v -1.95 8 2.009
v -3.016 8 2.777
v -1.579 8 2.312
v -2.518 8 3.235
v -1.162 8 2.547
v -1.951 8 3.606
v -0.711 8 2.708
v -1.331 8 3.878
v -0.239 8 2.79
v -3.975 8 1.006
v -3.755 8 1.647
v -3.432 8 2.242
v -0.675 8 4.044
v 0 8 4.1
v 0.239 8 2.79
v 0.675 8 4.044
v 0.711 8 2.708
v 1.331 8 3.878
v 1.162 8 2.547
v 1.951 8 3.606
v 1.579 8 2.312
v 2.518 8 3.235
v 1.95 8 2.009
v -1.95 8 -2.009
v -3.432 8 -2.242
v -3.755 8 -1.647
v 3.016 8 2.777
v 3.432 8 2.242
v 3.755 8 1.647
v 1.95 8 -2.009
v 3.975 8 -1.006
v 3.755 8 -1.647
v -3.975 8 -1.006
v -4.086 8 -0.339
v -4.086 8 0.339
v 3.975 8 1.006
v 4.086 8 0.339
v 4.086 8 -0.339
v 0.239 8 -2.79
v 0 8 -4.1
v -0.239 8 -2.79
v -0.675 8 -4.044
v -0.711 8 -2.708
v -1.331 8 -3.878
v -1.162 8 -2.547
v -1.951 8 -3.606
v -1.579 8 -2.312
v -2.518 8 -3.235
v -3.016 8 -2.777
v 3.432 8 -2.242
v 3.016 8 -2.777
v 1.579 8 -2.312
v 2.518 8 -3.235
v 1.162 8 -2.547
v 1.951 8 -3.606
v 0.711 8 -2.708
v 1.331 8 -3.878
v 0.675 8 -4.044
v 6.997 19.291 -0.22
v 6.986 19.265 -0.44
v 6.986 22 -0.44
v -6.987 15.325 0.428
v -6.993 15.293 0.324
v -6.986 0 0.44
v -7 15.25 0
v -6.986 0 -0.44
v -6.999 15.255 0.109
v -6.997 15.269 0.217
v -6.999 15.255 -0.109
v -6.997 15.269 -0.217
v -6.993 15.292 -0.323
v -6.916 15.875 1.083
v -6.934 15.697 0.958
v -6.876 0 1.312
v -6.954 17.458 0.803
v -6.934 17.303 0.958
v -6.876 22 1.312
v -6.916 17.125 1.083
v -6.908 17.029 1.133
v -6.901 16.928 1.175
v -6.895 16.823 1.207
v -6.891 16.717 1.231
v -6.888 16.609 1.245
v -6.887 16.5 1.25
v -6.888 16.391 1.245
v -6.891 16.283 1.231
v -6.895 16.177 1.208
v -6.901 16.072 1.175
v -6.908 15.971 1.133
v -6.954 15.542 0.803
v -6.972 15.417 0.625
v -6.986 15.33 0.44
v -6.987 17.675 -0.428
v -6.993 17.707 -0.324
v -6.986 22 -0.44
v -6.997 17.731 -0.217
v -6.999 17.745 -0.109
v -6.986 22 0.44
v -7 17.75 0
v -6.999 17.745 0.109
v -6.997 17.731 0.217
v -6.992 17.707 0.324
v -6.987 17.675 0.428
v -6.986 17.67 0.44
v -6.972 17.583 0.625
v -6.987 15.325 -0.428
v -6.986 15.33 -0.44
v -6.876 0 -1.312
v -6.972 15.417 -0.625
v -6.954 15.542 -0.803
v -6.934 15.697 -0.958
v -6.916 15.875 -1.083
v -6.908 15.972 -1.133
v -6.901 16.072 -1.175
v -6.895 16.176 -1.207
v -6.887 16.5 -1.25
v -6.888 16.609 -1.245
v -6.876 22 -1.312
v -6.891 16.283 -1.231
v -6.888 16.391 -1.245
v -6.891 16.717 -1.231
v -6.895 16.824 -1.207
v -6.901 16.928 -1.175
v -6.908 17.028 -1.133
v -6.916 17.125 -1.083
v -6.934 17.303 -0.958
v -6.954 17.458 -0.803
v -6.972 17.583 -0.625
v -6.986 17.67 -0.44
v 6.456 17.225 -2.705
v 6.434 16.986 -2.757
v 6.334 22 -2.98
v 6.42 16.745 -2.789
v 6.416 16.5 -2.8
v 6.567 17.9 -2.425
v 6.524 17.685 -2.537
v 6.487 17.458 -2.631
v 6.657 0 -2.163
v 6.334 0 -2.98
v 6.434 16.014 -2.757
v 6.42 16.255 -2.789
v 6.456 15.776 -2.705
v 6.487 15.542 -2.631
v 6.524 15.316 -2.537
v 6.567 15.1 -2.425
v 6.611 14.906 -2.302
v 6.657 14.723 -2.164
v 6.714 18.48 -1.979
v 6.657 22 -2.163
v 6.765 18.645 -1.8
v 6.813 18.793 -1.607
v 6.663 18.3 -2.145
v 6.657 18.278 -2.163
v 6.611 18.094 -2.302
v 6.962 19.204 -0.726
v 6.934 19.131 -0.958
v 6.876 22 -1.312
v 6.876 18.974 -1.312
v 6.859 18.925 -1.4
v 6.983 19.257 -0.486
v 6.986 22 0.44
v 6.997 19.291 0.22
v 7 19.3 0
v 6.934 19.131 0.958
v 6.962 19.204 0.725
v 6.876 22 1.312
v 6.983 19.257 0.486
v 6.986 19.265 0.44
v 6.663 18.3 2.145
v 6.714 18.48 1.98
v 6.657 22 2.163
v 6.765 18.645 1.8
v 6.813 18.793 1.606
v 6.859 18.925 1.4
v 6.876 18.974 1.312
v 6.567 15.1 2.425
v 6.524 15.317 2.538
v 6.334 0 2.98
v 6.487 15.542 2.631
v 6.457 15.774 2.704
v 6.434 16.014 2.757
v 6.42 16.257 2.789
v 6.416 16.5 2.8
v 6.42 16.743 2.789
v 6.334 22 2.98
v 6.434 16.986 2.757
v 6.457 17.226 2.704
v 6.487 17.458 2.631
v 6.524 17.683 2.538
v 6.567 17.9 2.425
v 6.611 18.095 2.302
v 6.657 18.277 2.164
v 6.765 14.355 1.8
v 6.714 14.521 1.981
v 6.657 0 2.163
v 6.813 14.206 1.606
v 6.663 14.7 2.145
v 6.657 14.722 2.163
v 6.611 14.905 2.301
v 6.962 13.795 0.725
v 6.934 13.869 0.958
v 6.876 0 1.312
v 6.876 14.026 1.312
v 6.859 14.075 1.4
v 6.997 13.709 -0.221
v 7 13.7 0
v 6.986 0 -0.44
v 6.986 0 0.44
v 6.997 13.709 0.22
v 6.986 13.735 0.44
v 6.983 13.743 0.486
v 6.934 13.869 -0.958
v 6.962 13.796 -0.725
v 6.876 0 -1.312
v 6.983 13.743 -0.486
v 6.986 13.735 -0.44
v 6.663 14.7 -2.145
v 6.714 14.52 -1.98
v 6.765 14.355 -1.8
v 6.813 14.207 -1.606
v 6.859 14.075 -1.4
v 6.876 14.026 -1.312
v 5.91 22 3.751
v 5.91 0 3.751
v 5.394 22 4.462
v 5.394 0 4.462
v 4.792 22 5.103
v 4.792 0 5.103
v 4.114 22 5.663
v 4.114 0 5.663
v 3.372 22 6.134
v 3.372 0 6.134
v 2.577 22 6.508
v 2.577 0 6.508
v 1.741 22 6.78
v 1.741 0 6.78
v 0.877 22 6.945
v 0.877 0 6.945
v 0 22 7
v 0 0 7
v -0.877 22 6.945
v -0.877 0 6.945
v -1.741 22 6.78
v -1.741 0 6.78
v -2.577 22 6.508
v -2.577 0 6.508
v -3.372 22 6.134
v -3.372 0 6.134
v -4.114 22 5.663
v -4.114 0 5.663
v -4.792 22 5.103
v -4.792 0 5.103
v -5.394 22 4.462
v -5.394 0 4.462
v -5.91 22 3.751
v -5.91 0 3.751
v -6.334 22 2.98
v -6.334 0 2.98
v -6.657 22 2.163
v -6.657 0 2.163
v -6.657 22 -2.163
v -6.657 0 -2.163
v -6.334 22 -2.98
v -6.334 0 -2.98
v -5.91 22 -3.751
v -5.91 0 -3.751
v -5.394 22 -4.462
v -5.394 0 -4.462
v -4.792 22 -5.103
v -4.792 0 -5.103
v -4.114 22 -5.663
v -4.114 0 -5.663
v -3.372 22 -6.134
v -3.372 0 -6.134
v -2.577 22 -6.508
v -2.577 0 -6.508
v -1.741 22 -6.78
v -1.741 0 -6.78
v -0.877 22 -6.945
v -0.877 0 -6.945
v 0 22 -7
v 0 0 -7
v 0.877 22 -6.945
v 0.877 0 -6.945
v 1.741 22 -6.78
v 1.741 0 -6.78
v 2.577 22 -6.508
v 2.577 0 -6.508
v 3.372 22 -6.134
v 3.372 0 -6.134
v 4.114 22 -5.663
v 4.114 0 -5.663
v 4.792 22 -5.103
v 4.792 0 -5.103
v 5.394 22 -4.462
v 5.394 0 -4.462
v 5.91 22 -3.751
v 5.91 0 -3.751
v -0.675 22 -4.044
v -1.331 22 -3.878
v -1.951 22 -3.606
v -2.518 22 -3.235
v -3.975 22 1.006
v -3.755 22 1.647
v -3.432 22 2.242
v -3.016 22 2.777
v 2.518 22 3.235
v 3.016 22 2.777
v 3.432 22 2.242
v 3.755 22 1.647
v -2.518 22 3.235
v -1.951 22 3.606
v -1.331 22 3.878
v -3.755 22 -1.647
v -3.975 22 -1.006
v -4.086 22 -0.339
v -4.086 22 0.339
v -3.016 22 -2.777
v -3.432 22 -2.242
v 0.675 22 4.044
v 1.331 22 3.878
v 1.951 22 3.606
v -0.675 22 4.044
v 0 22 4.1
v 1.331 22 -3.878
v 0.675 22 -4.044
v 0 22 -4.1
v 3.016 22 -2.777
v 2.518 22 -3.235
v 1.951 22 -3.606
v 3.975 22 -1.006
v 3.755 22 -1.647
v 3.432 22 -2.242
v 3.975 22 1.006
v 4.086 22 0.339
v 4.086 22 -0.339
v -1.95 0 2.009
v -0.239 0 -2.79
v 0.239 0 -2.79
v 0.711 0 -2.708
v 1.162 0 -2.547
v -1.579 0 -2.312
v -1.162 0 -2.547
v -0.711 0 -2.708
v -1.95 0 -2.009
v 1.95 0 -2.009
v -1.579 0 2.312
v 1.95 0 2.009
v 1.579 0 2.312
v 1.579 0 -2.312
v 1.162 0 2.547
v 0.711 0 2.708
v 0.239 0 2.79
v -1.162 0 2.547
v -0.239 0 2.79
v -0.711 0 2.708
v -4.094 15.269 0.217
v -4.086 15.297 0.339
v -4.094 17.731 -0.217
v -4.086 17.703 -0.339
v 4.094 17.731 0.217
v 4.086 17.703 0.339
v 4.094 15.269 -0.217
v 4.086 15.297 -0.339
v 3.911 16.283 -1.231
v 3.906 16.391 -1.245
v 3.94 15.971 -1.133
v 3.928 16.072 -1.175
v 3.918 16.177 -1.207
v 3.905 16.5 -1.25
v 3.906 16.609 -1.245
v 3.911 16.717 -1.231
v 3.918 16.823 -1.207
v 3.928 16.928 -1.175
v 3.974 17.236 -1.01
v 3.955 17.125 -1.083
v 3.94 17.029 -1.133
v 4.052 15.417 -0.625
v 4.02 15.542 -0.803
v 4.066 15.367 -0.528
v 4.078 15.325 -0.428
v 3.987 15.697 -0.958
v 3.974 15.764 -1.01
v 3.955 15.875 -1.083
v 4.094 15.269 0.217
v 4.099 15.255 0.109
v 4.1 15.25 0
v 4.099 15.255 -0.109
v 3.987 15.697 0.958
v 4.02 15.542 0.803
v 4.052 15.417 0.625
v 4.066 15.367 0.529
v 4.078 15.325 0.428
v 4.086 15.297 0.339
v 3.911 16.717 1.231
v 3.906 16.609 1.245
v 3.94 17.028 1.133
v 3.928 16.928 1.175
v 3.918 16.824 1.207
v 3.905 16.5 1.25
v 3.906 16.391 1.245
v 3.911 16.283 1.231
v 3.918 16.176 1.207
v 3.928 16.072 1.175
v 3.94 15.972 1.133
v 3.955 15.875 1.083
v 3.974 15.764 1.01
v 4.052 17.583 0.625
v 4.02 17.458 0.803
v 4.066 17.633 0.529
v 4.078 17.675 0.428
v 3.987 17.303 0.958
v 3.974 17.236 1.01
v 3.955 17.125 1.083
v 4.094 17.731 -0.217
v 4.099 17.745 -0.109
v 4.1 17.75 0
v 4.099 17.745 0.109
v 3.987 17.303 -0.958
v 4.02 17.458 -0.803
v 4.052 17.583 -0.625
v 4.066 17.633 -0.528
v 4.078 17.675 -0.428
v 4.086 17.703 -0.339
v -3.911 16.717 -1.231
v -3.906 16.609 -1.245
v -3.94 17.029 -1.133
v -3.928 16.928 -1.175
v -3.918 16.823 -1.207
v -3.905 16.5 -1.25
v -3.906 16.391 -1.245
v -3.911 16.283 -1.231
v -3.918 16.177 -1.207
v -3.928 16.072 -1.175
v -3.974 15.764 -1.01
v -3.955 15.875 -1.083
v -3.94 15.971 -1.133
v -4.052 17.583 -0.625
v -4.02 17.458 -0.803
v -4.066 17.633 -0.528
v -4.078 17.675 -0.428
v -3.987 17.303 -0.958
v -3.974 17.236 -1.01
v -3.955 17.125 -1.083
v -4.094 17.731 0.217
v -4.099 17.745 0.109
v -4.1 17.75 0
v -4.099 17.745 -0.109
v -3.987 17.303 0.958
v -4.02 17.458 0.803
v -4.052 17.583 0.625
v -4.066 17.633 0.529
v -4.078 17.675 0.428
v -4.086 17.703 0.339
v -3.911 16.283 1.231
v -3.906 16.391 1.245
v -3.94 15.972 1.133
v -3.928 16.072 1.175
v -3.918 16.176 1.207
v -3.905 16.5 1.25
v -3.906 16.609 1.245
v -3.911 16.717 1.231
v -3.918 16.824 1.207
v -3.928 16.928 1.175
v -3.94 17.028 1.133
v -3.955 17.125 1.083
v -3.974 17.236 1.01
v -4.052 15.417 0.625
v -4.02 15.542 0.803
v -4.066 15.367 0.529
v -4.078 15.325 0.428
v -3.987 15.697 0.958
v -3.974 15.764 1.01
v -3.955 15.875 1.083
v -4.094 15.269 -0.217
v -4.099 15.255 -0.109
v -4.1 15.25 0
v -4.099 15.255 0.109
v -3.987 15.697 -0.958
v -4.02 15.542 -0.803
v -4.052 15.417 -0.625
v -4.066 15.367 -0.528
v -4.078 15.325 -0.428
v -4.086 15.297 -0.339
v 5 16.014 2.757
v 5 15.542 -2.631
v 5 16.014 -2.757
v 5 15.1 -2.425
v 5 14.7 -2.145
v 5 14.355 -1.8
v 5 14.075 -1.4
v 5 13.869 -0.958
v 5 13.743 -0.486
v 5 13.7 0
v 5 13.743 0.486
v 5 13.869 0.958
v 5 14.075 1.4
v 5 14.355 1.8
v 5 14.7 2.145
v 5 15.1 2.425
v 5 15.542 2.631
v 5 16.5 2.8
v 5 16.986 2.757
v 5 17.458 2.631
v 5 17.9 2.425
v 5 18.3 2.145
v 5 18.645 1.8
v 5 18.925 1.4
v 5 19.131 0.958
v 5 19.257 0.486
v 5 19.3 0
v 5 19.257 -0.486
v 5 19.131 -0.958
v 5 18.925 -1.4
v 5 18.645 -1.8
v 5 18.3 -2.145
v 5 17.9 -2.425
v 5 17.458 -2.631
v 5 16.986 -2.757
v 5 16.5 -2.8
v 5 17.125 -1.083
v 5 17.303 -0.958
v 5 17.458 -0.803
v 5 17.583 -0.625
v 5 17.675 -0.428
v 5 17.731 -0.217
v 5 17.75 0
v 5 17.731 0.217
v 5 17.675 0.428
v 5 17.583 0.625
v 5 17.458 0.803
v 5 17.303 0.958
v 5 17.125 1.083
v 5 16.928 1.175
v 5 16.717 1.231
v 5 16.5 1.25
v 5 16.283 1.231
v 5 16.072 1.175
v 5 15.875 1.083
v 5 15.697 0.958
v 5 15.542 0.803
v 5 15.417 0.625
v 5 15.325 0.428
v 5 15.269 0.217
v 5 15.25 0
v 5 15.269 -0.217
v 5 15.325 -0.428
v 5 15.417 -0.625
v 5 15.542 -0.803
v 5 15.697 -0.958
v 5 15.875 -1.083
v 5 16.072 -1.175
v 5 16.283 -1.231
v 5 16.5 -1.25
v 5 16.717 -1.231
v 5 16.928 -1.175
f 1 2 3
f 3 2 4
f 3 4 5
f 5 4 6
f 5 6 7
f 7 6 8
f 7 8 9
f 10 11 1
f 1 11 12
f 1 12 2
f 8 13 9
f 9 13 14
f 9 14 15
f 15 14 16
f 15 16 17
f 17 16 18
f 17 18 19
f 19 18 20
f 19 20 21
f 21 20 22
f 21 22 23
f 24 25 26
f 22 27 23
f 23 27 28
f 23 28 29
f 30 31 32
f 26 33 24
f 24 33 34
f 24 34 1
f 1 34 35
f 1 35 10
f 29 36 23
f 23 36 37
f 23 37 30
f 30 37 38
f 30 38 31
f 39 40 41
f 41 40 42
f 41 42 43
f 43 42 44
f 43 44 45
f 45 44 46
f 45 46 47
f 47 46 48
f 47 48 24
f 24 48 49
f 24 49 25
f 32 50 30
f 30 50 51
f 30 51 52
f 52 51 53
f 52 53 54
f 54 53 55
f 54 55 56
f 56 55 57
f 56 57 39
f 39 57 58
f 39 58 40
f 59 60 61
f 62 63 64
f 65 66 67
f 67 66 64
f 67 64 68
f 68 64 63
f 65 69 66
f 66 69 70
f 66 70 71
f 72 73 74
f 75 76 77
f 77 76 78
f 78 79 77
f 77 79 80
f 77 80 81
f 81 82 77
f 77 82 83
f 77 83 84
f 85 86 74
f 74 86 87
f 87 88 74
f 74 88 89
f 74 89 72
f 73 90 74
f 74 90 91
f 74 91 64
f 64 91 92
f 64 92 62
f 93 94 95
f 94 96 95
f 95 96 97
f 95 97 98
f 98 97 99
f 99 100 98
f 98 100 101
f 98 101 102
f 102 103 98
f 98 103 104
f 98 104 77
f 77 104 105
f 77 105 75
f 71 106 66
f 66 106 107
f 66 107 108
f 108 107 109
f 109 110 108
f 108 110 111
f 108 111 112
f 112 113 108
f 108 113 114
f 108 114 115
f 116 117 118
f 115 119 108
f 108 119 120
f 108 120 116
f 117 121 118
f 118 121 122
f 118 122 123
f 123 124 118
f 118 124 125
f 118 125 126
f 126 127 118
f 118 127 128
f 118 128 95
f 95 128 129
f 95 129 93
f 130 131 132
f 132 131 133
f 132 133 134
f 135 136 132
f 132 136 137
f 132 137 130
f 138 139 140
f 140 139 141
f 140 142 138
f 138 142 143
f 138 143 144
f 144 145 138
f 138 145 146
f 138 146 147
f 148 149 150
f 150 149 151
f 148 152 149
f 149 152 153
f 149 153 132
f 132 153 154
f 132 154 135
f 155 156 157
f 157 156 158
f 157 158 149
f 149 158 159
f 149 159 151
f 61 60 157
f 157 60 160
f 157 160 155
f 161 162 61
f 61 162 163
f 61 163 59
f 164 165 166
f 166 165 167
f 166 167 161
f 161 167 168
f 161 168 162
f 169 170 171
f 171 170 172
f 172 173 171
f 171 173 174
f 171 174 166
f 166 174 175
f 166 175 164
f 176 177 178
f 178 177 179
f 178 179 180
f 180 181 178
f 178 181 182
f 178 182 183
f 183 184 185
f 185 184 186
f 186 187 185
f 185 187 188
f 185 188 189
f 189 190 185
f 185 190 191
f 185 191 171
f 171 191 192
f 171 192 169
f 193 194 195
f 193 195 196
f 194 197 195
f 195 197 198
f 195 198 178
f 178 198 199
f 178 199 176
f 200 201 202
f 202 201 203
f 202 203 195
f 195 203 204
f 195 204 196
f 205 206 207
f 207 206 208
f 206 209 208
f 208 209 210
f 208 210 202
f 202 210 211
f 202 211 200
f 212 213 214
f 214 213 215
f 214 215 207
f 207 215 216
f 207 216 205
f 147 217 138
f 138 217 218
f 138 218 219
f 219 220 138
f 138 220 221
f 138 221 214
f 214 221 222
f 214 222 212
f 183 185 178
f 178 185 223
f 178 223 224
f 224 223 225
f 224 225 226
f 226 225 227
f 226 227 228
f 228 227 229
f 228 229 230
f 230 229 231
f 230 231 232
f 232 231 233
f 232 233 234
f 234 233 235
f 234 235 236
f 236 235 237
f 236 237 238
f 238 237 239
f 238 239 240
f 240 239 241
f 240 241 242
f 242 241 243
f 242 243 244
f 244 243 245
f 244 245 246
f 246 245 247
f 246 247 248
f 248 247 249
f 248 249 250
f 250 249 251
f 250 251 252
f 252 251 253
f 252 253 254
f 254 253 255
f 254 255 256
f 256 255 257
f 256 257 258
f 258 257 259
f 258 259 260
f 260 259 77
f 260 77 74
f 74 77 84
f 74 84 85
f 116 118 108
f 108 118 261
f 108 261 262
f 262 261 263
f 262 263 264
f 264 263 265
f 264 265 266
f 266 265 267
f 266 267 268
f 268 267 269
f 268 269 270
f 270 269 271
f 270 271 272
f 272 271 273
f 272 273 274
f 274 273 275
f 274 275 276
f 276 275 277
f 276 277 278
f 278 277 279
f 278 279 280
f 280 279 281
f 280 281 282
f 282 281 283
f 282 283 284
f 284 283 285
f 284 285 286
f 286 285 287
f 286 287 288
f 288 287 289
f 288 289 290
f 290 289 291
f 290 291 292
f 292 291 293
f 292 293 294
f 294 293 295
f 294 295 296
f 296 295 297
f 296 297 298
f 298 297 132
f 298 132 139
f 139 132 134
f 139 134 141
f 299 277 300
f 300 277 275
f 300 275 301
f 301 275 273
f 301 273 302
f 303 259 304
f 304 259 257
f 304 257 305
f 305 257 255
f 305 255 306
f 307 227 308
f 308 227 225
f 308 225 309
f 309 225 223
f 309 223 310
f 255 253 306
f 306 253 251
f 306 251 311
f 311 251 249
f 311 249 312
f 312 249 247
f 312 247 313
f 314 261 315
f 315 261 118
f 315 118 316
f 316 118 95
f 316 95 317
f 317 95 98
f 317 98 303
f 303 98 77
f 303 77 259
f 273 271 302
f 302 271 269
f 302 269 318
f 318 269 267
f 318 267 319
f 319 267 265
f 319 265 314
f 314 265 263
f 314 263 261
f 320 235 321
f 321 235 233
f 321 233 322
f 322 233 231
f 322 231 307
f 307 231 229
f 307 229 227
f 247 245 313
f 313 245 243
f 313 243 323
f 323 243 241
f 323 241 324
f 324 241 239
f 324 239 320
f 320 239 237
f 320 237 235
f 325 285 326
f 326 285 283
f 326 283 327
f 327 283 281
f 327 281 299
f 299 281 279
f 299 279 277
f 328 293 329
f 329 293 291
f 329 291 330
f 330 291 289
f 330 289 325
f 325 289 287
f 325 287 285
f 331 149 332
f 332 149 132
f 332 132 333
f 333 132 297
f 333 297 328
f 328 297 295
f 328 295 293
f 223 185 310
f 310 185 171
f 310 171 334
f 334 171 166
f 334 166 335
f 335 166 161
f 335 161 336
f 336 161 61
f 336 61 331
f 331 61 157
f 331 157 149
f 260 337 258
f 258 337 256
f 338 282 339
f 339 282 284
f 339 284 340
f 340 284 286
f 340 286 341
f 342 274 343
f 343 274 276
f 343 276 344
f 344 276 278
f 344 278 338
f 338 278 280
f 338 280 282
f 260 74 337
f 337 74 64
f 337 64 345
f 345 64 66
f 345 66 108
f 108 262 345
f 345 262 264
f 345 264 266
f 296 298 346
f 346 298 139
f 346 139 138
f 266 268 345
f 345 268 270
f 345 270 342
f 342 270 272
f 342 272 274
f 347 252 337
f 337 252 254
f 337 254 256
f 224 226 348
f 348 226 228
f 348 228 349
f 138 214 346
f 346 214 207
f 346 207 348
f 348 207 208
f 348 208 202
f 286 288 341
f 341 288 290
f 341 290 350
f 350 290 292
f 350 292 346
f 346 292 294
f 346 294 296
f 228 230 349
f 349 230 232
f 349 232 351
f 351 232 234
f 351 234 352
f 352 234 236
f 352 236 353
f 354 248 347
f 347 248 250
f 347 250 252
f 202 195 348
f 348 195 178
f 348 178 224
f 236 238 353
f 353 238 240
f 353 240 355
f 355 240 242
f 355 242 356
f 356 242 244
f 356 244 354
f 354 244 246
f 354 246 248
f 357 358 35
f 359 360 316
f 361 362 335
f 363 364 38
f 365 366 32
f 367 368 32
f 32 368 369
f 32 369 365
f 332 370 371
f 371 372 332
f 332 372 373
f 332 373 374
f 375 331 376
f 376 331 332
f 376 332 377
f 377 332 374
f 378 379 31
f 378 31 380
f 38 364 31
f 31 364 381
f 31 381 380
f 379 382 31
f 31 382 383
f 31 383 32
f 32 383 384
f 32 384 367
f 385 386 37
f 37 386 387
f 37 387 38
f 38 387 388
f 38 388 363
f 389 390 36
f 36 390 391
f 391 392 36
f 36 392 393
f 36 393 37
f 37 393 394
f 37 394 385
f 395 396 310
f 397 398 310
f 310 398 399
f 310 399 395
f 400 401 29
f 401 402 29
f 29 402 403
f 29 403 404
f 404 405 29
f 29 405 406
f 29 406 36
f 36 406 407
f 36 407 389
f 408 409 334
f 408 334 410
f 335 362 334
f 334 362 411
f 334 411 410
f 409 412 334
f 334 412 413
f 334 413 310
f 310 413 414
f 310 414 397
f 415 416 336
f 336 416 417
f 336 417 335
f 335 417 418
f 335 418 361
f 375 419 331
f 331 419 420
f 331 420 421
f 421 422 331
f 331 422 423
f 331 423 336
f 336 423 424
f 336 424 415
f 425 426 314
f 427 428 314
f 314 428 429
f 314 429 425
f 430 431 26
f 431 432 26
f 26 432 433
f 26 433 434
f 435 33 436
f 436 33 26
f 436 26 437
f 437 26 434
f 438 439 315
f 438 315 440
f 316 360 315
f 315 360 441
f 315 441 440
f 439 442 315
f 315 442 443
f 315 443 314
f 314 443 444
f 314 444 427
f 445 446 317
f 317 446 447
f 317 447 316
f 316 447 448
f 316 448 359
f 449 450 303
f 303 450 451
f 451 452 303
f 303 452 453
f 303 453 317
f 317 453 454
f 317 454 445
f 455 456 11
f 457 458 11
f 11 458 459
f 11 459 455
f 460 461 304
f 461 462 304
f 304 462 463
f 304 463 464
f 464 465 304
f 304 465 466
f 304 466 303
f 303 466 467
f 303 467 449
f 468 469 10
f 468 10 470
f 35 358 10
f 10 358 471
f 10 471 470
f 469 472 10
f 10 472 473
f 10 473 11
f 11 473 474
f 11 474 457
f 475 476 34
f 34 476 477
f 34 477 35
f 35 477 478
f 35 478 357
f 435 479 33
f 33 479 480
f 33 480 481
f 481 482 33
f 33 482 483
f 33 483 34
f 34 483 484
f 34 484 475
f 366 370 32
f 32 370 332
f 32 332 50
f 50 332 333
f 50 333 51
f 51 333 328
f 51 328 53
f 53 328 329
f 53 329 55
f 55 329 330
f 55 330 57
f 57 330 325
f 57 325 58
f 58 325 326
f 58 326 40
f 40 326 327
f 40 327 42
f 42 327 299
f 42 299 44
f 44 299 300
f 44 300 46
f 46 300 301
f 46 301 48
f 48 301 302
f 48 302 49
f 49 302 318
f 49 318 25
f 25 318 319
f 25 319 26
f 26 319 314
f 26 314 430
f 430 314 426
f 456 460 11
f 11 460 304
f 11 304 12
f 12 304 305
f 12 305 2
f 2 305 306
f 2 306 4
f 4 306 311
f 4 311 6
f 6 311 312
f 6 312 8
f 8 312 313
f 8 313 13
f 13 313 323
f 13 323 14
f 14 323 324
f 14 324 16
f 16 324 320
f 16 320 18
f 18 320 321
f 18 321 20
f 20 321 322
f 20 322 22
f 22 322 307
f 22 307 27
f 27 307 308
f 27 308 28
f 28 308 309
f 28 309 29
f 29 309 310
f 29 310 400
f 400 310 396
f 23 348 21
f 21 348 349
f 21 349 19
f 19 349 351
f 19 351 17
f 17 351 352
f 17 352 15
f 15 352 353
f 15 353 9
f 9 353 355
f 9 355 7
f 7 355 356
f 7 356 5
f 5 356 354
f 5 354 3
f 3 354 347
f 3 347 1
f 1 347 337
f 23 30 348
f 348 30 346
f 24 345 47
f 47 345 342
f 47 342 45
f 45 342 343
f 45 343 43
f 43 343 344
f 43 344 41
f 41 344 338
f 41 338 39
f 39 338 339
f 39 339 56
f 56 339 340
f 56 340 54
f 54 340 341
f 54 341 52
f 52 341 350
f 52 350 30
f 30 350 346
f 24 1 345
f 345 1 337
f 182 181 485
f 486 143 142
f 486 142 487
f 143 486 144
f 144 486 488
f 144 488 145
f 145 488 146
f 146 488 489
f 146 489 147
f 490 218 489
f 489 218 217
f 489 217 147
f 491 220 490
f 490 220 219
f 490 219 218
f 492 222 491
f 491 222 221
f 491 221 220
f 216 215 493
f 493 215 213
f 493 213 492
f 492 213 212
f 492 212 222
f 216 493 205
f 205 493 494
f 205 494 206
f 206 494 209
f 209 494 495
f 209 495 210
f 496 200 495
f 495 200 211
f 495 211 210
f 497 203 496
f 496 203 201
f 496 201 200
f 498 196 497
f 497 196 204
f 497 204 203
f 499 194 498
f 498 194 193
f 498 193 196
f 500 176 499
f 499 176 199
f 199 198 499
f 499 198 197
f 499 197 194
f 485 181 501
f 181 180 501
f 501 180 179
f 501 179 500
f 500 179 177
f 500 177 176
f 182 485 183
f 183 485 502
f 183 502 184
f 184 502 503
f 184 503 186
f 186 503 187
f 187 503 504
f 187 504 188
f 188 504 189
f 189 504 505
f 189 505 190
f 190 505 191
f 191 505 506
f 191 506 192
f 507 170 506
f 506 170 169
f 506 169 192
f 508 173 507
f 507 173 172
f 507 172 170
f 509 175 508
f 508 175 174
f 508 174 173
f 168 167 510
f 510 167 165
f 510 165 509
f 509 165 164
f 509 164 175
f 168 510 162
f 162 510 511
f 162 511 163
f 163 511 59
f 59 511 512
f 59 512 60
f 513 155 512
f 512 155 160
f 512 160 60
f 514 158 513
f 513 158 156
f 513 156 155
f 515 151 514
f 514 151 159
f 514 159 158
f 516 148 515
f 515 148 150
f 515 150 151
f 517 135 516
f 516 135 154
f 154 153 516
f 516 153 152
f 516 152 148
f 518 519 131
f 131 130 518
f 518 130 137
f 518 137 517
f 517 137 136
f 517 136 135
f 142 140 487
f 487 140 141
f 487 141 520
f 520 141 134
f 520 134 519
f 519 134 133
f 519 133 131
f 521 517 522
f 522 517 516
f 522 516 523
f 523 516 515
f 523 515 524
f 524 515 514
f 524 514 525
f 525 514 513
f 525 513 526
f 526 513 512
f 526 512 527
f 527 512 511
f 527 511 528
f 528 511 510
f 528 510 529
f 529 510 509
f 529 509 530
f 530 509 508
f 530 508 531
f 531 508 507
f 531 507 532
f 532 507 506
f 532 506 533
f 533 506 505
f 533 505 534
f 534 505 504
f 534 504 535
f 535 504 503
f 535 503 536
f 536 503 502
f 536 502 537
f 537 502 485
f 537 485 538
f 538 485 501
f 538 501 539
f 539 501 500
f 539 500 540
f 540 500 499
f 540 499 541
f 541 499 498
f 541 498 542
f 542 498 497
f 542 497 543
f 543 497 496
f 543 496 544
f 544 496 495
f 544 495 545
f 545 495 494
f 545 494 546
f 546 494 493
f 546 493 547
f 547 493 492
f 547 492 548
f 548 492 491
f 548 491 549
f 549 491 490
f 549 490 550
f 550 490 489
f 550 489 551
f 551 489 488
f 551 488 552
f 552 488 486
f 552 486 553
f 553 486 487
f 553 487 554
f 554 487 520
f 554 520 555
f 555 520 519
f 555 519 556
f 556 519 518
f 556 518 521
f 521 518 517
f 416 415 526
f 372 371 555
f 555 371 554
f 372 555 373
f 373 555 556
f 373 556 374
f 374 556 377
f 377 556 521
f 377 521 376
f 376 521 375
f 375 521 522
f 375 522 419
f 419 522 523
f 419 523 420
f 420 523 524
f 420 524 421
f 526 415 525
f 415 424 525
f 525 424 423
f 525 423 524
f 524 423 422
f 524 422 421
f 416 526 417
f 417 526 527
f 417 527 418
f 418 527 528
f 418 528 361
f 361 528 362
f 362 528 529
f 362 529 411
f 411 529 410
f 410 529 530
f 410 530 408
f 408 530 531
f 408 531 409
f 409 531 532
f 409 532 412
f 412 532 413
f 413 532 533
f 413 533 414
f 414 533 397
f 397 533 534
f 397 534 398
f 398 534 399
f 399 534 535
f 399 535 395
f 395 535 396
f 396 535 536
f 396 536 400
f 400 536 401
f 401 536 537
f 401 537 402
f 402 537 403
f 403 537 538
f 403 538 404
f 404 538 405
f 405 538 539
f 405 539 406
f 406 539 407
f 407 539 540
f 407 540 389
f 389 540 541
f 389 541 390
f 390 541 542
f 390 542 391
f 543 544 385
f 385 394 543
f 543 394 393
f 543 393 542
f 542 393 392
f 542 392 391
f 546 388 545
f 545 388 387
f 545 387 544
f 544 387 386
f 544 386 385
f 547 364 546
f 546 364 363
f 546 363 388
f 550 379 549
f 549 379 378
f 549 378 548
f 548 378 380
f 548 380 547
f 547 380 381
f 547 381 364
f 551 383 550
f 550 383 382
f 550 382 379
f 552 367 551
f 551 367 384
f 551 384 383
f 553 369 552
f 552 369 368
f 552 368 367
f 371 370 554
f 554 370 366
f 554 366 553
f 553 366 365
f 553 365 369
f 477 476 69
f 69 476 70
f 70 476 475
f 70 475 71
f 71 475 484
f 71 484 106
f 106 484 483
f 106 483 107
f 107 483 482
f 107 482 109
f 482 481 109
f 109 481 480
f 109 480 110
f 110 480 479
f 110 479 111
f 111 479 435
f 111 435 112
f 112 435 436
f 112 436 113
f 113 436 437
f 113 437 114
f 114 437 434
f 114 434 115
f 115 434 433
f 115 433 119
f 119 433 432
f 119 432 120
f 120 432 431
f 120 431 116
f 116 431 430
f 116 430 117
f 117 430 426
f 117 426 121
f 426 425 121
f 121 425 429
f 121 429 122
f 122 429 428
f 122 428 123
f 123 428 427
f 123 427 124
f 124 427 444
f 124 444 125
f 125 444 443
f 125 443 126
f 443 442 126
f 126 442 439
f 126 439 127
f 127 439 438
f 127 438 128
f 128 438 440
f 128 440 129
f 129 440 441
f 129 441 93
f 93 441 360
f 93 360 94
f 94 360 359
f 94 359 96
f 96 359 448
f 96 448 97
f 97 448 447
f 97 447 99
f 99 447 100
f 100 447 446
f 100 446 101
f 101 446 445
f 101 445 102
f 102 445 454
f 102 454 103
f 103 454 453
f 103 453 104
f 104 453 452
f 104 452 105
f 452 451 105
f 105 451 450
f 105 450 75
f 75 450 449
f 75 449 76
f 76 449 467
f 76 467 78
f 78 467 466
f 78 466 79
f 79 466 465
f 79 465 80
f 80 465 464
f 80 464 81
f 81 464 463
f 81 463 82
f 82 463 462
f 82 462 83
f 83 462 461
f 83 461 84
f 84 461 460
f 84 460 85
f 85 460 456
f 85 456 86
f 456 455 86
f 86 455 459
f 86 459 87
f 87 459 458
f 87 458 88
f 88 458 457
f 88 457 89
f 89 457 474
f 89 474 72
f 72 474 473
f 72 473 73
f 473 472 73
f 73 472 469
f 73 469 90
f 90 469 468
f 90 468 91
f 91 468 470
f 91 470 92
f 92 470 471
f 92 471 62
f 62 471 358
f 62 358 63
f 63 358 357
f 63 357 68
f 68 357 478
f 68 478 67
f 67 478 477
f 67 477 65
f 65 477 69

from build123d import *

# Parameters (mm, degrees)
SKETCH1_R                               = 7
BOSS_EXTRUDE1_DEPTH                     = 22
SKETCH2_R                               = 4.1
CUT_EXTRUDE1_DEPTH                      = 14
CUT_EXTRUDE2_DEPTH                      = 8
CBORE_FOR_M5_HEX_HEAD_BOLT1_D           = 2.5
CBORE_FOR_M5_HEX_HEAD_BOLT1_CBORE_D     = 5.6
CBORE_FOR_M5_HEX_HEAD_BOLT1_CBORE_DEPTH = 2


with BuildPart() as part:
    # Sketch1 → Boss-Extrude1 (new body)
    with BuildSketch(Plane(origin=(0, 0, 0), x_dir=(1, 0, 0), z_dir=(0, 1, 0))):
        with Locations(Location((0, 0, 0), (0, 0, 270))):
            Circle(SKETCH1_R)
    extrude(amount=BOSS_EXTRUDE1_DEPTH)

    # Sketch2 → Cut-Extrude1 (cut)
    with BuildSketch(Plane(origin=(0, 22, 0), x_dir=(1, 0, 0), z_dir=(0, 1, 0))):
        with Locations(Location((0, 0, 0), (0, 0, 270))):
            Circle(SKETCH2_R)
    extrude(amount=-CUT_EXTRUDE1_DEPTH, mode=Mode.SUBTRACT)

    # Sketch3 → Cut-Extrude2 (cut)
    with BuildSketch(Plane.XZ):
        with BuildLine():
            Line((-1.95, 2.00935313), (-1.95, -2.00935313))
            ThreePointArc((-1.95, -2.00935313), (0, -2.8), (1.95, -2.00935313))
            Line((1.95, -2.00935313), (1.95, 2.00935313))
            ThreePointArc((1.95, 2.00935313), (0, 2.8), (-1.95, 2.00935313))
        make_face()
    extrude(amount=-CUT_EXTRUDE2_DEPTH, mode=Mode.SUBTRACT)

    # CBORE for M5 Hex Head Bolt1 (through all)
    with Locations(Plane(origin=(7, 16.5, 0), x_dir=(0, 0, 1), z_dir=(1, 0, 0))):
        with Locations((0, 0)):
            CounterBoreHole(CBORE_FOR_M5_HEX_HEAD_BOLT1_D / 2, CBORE_FOR_M5_HEX_HEAD_BOLT1_CBORE_D / 2, CBORE_FOR_M5_HEX_HEAD_BOLT1_CBORE_DEPTH)


solid = part.part
